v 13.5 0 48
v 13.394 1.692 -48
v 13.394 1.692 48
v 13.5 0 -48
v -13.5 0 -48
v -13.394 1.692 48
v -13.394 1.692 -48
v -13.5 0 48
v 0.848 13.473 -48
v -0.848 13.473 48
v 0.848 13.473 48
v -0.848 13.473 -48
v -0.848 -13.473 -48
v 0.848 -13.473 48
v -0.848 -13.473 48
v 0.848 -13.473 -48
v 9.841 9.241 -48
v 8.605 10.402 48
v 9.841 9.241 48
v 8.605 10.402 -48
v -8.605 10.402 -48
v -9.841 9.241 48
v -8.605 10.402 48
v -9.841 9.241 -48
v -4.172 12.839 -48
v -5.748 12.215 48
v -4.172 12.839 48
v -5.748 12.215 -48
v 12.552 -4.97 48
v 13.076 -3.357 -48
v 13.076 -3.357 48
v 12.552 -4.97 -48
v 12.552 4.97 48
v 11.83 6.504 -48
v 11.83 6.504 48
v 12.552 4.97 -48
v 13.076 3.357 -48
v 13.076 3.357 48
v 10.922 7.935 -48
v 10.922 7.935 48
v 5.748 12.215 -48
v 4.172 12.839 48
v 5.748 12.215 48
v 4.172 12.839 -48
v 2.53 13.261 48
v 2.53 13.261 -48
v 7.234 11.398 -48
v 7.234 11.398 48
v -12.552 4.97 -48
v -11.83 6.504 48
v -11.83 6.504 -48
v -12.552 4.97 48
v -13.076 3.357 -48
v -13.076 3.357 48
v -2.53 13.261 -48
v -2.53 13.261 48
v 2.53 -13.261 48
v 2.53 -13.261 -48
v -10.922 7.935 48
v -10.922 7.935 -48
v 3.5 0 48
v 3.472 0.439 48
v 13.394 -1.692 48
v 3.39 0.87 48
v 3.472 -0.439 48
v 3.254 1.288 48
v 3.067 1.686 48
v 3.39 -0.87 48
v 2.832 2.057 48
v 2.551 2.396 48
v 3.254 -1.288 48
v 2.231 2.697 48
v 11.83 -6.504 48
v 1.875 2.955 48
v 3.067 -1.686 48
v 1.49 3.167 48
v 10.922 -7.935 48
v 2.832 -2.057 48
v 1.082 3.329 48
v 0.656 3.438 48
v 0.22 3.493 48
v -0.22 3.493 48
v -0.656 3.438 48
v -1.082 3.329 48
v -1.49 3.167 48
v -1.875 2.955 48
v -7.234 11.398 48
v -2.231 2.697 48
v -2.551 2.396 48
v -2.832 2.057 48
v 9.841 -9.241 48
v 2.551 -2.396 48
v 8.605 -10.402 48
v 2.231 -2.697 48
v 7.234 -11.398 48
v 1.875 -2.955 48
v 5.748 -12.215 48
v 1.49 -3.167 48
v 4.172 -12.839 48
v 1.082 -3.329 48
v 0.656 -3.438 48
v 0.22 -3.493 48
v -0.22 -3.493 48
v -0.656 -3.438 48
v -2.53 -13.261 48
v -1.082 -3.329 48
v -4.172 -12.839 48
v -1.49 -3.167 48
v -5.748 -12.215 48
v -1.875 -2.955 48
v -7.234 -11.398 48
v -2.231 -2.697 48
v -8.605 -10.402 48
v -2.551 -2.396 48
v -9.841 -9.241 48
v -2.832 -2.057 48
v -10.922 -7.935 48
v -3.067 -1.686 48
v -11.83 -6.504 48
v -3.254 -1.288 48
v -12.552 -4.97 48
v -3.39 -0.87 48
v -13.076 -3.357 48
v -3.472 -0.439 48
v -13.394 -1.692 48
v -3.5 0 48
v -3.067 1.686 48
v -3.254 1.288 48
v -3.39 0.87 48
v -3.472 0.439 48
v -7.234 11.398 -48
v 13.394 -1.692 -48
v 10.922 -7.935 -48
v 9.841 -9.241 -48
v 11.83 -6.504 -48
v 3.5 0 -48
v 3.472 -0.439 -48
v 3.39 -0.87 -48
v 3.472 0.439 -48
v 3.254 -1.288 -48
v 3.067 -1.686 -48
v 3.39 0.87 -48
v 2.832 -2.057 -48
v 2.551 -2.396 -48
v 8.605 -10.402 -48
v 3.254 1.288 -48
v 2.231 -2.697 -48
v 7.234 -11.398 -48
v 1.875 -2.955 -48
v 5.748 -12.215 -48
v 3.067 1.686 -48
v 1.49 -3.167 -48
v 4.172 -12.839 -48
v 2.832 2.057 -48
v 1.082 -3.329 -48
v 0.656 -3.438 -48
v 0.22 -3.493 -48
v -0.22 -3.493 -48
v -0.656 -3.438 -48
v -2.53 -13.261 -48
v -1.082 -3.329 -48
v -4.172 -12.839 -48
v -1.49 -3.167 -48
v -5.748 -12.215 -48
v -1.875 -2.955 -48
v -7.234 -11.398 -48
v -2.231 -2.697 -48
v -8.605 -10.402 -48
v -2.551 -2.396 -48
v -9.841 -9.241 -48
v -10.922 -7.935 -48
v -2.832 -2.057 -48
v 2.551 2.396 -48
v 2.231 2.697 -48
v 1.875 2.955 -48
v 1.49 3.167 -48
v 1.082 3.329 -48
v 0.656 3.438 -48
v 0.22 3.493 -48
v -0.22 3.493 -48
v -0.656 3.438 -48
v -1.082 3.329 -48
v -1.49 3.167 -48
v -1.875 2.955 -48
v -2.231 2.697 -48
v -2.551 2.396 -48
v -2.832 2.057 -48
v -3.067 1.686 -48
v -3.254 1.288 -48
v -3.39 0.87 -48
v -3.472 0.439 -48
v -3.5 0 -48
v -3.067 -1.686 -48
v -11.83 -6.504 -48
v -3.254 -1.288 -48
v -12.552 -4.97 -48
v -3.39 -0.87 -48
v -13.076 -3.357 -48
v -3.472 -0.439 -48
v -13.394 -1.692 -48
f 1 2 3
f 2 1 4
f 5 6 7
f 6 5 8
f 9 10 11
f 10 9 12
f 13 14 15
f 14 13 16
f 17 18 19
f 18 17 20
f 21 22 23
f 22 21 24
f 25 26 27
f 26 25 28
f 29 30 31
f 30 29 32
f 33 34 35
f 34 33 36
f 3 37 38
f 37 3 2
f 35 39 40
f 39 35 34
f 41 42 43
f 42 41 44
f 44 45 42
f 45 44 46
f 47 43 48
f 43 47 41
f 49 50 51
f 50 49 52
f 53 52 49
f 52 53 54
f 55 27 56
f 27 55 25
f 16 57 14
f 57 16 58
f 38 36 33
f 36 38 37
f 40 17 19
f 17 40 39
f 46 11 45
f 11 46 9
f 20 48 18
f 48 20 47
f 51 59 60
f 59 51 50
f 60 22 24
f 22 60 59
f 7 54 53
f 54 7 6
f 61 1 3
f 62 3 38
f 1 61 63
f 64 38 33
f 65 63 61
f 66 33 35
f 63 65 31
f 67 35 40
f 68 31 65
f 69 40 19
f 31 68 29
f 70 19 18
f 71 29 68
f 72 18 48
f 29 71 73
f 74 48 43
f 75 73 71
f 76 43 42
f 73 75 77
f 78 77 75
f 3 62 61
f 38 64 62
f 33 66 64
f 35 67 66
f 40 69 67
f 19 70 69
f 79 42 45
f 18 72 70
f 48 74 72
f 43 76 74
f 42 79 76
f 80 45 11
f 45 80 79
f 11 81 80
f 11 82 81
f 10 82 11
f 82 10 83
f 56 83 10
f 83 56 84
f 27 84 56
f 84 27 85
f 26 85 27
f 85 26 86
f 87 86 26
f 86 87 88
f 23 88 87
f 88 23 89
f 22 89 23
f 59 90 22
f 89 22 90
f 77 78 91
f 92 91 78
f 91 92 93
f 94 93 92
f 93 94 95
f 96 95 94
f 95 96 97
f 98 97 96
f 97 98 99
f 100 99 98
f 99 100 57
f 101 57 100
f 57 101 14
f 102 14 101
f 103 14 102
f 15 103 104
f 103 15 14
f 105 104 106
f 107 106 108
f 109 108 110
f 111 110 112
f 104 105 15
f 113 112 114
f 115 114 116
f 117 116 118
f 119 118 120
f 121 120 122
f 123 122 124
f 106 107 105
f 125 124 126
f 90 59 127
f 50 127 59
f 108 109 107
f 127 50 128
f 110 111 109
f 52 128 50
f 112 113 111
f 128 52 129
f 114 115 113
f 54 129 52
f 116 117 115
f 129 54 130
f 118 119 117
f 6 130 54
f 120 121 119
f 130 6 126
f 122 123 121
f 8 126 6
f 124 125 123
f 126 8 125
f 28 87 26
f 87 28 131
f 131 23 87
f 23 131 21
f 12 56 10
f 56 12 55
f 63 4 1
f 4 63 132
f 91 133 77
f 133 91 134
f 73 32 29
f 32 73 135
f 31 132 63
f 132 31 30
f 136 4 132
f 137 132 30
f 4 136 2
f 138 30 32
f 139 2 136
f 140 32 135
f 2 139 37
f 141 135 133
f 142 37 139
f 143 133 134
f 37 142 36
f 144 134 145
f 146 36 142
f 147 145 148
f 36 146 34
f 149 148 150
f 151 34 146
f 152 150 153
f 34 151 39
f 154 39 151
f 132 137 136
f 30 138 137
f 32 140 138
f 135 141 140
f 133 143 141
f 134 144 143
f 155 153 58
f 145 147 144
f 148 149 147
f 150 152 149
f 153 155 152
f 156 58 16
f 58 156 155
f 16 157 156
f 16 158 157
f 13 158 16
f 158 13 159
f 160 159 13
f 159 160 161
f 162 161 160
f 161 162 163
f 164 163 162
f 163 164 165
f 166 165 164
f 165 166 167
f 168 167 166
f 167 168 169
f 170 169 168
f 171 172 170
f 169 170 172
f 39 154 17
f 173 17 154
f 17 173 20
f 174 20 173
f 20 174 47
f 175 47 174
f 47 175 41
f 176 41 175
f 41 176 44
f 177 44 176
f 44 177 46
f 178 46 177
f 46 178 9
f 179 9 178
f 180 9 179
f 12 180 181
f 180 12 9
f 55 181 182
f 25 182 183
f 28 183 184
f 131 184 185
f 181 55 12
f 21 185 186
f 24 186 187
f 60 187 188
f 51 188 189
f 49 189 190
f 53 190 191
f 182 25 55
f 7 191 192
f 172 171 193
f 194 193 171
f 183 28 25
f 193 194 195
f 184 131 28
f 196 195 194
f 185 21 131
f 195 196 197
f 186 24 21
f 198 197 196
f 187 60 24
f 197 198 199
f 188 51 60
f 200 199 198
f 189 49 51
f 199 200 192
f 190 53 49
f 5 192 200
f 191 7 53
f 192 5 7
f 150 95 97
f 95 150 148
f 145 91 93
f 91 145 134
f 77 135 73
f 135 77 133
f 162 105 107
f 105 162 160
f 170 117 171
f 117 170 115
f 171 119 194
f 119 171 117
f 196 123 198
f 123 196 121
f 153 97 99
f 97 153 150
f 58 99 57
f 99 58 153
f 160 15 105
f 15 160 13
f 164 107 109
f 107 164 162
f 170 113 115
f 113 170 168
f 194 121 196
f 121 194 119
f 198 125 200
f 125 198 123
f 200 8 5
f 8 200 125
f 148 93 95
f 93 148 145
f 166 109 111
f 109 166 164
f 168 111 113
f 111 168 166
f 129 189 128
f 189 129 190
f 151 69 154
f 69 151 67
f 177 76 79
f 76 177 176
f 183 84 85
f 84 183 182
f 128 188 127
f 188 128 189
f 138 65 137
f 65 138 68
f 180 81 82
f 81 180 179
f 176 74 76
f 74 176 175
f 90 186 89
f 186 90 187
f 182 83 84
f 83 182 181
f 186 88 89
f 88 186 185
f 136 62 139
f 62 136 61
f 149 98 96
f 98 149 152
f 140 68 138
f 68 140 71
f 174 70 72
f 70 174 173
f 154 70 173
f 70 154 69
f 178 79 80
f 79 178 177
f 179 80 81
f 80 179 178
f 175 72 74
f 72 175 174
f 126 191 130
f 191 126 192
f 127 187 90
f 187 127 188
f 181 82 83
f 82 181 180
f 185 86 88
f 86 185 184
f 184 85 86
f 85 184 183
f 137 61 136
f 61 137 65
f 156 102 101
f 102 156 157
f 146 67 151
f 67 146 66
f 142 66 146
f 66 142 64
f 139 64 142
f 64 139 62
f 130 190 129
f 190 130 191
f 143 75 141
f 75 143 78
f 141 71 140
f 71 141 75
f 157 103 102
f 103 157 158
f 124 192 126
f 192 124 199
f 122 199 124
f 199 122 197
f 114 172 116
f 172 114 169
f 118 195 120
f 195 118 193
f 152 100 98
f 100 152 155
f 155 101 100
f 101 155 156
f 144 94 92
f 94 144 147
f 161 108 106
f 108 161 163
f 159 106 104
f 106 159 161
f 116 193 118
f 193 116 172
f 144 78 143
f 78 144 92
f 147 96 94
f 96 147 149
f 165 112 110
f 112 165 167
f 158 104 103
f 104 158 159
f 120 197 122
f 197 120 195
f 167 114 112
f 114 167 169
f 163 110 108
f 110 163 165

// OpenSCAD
$fn = 50;


difference() {
	union() {
		translate(v = [0, 0, -48.0000000000]) {
			cylinder(h = 96, r = 13.5000000000);
		}
	}
	union() {
		translate(v = [0, 0, -100.0000000000]) {
			cylinder(h = 200, r = 3.5000000000);
		}
	}
}
